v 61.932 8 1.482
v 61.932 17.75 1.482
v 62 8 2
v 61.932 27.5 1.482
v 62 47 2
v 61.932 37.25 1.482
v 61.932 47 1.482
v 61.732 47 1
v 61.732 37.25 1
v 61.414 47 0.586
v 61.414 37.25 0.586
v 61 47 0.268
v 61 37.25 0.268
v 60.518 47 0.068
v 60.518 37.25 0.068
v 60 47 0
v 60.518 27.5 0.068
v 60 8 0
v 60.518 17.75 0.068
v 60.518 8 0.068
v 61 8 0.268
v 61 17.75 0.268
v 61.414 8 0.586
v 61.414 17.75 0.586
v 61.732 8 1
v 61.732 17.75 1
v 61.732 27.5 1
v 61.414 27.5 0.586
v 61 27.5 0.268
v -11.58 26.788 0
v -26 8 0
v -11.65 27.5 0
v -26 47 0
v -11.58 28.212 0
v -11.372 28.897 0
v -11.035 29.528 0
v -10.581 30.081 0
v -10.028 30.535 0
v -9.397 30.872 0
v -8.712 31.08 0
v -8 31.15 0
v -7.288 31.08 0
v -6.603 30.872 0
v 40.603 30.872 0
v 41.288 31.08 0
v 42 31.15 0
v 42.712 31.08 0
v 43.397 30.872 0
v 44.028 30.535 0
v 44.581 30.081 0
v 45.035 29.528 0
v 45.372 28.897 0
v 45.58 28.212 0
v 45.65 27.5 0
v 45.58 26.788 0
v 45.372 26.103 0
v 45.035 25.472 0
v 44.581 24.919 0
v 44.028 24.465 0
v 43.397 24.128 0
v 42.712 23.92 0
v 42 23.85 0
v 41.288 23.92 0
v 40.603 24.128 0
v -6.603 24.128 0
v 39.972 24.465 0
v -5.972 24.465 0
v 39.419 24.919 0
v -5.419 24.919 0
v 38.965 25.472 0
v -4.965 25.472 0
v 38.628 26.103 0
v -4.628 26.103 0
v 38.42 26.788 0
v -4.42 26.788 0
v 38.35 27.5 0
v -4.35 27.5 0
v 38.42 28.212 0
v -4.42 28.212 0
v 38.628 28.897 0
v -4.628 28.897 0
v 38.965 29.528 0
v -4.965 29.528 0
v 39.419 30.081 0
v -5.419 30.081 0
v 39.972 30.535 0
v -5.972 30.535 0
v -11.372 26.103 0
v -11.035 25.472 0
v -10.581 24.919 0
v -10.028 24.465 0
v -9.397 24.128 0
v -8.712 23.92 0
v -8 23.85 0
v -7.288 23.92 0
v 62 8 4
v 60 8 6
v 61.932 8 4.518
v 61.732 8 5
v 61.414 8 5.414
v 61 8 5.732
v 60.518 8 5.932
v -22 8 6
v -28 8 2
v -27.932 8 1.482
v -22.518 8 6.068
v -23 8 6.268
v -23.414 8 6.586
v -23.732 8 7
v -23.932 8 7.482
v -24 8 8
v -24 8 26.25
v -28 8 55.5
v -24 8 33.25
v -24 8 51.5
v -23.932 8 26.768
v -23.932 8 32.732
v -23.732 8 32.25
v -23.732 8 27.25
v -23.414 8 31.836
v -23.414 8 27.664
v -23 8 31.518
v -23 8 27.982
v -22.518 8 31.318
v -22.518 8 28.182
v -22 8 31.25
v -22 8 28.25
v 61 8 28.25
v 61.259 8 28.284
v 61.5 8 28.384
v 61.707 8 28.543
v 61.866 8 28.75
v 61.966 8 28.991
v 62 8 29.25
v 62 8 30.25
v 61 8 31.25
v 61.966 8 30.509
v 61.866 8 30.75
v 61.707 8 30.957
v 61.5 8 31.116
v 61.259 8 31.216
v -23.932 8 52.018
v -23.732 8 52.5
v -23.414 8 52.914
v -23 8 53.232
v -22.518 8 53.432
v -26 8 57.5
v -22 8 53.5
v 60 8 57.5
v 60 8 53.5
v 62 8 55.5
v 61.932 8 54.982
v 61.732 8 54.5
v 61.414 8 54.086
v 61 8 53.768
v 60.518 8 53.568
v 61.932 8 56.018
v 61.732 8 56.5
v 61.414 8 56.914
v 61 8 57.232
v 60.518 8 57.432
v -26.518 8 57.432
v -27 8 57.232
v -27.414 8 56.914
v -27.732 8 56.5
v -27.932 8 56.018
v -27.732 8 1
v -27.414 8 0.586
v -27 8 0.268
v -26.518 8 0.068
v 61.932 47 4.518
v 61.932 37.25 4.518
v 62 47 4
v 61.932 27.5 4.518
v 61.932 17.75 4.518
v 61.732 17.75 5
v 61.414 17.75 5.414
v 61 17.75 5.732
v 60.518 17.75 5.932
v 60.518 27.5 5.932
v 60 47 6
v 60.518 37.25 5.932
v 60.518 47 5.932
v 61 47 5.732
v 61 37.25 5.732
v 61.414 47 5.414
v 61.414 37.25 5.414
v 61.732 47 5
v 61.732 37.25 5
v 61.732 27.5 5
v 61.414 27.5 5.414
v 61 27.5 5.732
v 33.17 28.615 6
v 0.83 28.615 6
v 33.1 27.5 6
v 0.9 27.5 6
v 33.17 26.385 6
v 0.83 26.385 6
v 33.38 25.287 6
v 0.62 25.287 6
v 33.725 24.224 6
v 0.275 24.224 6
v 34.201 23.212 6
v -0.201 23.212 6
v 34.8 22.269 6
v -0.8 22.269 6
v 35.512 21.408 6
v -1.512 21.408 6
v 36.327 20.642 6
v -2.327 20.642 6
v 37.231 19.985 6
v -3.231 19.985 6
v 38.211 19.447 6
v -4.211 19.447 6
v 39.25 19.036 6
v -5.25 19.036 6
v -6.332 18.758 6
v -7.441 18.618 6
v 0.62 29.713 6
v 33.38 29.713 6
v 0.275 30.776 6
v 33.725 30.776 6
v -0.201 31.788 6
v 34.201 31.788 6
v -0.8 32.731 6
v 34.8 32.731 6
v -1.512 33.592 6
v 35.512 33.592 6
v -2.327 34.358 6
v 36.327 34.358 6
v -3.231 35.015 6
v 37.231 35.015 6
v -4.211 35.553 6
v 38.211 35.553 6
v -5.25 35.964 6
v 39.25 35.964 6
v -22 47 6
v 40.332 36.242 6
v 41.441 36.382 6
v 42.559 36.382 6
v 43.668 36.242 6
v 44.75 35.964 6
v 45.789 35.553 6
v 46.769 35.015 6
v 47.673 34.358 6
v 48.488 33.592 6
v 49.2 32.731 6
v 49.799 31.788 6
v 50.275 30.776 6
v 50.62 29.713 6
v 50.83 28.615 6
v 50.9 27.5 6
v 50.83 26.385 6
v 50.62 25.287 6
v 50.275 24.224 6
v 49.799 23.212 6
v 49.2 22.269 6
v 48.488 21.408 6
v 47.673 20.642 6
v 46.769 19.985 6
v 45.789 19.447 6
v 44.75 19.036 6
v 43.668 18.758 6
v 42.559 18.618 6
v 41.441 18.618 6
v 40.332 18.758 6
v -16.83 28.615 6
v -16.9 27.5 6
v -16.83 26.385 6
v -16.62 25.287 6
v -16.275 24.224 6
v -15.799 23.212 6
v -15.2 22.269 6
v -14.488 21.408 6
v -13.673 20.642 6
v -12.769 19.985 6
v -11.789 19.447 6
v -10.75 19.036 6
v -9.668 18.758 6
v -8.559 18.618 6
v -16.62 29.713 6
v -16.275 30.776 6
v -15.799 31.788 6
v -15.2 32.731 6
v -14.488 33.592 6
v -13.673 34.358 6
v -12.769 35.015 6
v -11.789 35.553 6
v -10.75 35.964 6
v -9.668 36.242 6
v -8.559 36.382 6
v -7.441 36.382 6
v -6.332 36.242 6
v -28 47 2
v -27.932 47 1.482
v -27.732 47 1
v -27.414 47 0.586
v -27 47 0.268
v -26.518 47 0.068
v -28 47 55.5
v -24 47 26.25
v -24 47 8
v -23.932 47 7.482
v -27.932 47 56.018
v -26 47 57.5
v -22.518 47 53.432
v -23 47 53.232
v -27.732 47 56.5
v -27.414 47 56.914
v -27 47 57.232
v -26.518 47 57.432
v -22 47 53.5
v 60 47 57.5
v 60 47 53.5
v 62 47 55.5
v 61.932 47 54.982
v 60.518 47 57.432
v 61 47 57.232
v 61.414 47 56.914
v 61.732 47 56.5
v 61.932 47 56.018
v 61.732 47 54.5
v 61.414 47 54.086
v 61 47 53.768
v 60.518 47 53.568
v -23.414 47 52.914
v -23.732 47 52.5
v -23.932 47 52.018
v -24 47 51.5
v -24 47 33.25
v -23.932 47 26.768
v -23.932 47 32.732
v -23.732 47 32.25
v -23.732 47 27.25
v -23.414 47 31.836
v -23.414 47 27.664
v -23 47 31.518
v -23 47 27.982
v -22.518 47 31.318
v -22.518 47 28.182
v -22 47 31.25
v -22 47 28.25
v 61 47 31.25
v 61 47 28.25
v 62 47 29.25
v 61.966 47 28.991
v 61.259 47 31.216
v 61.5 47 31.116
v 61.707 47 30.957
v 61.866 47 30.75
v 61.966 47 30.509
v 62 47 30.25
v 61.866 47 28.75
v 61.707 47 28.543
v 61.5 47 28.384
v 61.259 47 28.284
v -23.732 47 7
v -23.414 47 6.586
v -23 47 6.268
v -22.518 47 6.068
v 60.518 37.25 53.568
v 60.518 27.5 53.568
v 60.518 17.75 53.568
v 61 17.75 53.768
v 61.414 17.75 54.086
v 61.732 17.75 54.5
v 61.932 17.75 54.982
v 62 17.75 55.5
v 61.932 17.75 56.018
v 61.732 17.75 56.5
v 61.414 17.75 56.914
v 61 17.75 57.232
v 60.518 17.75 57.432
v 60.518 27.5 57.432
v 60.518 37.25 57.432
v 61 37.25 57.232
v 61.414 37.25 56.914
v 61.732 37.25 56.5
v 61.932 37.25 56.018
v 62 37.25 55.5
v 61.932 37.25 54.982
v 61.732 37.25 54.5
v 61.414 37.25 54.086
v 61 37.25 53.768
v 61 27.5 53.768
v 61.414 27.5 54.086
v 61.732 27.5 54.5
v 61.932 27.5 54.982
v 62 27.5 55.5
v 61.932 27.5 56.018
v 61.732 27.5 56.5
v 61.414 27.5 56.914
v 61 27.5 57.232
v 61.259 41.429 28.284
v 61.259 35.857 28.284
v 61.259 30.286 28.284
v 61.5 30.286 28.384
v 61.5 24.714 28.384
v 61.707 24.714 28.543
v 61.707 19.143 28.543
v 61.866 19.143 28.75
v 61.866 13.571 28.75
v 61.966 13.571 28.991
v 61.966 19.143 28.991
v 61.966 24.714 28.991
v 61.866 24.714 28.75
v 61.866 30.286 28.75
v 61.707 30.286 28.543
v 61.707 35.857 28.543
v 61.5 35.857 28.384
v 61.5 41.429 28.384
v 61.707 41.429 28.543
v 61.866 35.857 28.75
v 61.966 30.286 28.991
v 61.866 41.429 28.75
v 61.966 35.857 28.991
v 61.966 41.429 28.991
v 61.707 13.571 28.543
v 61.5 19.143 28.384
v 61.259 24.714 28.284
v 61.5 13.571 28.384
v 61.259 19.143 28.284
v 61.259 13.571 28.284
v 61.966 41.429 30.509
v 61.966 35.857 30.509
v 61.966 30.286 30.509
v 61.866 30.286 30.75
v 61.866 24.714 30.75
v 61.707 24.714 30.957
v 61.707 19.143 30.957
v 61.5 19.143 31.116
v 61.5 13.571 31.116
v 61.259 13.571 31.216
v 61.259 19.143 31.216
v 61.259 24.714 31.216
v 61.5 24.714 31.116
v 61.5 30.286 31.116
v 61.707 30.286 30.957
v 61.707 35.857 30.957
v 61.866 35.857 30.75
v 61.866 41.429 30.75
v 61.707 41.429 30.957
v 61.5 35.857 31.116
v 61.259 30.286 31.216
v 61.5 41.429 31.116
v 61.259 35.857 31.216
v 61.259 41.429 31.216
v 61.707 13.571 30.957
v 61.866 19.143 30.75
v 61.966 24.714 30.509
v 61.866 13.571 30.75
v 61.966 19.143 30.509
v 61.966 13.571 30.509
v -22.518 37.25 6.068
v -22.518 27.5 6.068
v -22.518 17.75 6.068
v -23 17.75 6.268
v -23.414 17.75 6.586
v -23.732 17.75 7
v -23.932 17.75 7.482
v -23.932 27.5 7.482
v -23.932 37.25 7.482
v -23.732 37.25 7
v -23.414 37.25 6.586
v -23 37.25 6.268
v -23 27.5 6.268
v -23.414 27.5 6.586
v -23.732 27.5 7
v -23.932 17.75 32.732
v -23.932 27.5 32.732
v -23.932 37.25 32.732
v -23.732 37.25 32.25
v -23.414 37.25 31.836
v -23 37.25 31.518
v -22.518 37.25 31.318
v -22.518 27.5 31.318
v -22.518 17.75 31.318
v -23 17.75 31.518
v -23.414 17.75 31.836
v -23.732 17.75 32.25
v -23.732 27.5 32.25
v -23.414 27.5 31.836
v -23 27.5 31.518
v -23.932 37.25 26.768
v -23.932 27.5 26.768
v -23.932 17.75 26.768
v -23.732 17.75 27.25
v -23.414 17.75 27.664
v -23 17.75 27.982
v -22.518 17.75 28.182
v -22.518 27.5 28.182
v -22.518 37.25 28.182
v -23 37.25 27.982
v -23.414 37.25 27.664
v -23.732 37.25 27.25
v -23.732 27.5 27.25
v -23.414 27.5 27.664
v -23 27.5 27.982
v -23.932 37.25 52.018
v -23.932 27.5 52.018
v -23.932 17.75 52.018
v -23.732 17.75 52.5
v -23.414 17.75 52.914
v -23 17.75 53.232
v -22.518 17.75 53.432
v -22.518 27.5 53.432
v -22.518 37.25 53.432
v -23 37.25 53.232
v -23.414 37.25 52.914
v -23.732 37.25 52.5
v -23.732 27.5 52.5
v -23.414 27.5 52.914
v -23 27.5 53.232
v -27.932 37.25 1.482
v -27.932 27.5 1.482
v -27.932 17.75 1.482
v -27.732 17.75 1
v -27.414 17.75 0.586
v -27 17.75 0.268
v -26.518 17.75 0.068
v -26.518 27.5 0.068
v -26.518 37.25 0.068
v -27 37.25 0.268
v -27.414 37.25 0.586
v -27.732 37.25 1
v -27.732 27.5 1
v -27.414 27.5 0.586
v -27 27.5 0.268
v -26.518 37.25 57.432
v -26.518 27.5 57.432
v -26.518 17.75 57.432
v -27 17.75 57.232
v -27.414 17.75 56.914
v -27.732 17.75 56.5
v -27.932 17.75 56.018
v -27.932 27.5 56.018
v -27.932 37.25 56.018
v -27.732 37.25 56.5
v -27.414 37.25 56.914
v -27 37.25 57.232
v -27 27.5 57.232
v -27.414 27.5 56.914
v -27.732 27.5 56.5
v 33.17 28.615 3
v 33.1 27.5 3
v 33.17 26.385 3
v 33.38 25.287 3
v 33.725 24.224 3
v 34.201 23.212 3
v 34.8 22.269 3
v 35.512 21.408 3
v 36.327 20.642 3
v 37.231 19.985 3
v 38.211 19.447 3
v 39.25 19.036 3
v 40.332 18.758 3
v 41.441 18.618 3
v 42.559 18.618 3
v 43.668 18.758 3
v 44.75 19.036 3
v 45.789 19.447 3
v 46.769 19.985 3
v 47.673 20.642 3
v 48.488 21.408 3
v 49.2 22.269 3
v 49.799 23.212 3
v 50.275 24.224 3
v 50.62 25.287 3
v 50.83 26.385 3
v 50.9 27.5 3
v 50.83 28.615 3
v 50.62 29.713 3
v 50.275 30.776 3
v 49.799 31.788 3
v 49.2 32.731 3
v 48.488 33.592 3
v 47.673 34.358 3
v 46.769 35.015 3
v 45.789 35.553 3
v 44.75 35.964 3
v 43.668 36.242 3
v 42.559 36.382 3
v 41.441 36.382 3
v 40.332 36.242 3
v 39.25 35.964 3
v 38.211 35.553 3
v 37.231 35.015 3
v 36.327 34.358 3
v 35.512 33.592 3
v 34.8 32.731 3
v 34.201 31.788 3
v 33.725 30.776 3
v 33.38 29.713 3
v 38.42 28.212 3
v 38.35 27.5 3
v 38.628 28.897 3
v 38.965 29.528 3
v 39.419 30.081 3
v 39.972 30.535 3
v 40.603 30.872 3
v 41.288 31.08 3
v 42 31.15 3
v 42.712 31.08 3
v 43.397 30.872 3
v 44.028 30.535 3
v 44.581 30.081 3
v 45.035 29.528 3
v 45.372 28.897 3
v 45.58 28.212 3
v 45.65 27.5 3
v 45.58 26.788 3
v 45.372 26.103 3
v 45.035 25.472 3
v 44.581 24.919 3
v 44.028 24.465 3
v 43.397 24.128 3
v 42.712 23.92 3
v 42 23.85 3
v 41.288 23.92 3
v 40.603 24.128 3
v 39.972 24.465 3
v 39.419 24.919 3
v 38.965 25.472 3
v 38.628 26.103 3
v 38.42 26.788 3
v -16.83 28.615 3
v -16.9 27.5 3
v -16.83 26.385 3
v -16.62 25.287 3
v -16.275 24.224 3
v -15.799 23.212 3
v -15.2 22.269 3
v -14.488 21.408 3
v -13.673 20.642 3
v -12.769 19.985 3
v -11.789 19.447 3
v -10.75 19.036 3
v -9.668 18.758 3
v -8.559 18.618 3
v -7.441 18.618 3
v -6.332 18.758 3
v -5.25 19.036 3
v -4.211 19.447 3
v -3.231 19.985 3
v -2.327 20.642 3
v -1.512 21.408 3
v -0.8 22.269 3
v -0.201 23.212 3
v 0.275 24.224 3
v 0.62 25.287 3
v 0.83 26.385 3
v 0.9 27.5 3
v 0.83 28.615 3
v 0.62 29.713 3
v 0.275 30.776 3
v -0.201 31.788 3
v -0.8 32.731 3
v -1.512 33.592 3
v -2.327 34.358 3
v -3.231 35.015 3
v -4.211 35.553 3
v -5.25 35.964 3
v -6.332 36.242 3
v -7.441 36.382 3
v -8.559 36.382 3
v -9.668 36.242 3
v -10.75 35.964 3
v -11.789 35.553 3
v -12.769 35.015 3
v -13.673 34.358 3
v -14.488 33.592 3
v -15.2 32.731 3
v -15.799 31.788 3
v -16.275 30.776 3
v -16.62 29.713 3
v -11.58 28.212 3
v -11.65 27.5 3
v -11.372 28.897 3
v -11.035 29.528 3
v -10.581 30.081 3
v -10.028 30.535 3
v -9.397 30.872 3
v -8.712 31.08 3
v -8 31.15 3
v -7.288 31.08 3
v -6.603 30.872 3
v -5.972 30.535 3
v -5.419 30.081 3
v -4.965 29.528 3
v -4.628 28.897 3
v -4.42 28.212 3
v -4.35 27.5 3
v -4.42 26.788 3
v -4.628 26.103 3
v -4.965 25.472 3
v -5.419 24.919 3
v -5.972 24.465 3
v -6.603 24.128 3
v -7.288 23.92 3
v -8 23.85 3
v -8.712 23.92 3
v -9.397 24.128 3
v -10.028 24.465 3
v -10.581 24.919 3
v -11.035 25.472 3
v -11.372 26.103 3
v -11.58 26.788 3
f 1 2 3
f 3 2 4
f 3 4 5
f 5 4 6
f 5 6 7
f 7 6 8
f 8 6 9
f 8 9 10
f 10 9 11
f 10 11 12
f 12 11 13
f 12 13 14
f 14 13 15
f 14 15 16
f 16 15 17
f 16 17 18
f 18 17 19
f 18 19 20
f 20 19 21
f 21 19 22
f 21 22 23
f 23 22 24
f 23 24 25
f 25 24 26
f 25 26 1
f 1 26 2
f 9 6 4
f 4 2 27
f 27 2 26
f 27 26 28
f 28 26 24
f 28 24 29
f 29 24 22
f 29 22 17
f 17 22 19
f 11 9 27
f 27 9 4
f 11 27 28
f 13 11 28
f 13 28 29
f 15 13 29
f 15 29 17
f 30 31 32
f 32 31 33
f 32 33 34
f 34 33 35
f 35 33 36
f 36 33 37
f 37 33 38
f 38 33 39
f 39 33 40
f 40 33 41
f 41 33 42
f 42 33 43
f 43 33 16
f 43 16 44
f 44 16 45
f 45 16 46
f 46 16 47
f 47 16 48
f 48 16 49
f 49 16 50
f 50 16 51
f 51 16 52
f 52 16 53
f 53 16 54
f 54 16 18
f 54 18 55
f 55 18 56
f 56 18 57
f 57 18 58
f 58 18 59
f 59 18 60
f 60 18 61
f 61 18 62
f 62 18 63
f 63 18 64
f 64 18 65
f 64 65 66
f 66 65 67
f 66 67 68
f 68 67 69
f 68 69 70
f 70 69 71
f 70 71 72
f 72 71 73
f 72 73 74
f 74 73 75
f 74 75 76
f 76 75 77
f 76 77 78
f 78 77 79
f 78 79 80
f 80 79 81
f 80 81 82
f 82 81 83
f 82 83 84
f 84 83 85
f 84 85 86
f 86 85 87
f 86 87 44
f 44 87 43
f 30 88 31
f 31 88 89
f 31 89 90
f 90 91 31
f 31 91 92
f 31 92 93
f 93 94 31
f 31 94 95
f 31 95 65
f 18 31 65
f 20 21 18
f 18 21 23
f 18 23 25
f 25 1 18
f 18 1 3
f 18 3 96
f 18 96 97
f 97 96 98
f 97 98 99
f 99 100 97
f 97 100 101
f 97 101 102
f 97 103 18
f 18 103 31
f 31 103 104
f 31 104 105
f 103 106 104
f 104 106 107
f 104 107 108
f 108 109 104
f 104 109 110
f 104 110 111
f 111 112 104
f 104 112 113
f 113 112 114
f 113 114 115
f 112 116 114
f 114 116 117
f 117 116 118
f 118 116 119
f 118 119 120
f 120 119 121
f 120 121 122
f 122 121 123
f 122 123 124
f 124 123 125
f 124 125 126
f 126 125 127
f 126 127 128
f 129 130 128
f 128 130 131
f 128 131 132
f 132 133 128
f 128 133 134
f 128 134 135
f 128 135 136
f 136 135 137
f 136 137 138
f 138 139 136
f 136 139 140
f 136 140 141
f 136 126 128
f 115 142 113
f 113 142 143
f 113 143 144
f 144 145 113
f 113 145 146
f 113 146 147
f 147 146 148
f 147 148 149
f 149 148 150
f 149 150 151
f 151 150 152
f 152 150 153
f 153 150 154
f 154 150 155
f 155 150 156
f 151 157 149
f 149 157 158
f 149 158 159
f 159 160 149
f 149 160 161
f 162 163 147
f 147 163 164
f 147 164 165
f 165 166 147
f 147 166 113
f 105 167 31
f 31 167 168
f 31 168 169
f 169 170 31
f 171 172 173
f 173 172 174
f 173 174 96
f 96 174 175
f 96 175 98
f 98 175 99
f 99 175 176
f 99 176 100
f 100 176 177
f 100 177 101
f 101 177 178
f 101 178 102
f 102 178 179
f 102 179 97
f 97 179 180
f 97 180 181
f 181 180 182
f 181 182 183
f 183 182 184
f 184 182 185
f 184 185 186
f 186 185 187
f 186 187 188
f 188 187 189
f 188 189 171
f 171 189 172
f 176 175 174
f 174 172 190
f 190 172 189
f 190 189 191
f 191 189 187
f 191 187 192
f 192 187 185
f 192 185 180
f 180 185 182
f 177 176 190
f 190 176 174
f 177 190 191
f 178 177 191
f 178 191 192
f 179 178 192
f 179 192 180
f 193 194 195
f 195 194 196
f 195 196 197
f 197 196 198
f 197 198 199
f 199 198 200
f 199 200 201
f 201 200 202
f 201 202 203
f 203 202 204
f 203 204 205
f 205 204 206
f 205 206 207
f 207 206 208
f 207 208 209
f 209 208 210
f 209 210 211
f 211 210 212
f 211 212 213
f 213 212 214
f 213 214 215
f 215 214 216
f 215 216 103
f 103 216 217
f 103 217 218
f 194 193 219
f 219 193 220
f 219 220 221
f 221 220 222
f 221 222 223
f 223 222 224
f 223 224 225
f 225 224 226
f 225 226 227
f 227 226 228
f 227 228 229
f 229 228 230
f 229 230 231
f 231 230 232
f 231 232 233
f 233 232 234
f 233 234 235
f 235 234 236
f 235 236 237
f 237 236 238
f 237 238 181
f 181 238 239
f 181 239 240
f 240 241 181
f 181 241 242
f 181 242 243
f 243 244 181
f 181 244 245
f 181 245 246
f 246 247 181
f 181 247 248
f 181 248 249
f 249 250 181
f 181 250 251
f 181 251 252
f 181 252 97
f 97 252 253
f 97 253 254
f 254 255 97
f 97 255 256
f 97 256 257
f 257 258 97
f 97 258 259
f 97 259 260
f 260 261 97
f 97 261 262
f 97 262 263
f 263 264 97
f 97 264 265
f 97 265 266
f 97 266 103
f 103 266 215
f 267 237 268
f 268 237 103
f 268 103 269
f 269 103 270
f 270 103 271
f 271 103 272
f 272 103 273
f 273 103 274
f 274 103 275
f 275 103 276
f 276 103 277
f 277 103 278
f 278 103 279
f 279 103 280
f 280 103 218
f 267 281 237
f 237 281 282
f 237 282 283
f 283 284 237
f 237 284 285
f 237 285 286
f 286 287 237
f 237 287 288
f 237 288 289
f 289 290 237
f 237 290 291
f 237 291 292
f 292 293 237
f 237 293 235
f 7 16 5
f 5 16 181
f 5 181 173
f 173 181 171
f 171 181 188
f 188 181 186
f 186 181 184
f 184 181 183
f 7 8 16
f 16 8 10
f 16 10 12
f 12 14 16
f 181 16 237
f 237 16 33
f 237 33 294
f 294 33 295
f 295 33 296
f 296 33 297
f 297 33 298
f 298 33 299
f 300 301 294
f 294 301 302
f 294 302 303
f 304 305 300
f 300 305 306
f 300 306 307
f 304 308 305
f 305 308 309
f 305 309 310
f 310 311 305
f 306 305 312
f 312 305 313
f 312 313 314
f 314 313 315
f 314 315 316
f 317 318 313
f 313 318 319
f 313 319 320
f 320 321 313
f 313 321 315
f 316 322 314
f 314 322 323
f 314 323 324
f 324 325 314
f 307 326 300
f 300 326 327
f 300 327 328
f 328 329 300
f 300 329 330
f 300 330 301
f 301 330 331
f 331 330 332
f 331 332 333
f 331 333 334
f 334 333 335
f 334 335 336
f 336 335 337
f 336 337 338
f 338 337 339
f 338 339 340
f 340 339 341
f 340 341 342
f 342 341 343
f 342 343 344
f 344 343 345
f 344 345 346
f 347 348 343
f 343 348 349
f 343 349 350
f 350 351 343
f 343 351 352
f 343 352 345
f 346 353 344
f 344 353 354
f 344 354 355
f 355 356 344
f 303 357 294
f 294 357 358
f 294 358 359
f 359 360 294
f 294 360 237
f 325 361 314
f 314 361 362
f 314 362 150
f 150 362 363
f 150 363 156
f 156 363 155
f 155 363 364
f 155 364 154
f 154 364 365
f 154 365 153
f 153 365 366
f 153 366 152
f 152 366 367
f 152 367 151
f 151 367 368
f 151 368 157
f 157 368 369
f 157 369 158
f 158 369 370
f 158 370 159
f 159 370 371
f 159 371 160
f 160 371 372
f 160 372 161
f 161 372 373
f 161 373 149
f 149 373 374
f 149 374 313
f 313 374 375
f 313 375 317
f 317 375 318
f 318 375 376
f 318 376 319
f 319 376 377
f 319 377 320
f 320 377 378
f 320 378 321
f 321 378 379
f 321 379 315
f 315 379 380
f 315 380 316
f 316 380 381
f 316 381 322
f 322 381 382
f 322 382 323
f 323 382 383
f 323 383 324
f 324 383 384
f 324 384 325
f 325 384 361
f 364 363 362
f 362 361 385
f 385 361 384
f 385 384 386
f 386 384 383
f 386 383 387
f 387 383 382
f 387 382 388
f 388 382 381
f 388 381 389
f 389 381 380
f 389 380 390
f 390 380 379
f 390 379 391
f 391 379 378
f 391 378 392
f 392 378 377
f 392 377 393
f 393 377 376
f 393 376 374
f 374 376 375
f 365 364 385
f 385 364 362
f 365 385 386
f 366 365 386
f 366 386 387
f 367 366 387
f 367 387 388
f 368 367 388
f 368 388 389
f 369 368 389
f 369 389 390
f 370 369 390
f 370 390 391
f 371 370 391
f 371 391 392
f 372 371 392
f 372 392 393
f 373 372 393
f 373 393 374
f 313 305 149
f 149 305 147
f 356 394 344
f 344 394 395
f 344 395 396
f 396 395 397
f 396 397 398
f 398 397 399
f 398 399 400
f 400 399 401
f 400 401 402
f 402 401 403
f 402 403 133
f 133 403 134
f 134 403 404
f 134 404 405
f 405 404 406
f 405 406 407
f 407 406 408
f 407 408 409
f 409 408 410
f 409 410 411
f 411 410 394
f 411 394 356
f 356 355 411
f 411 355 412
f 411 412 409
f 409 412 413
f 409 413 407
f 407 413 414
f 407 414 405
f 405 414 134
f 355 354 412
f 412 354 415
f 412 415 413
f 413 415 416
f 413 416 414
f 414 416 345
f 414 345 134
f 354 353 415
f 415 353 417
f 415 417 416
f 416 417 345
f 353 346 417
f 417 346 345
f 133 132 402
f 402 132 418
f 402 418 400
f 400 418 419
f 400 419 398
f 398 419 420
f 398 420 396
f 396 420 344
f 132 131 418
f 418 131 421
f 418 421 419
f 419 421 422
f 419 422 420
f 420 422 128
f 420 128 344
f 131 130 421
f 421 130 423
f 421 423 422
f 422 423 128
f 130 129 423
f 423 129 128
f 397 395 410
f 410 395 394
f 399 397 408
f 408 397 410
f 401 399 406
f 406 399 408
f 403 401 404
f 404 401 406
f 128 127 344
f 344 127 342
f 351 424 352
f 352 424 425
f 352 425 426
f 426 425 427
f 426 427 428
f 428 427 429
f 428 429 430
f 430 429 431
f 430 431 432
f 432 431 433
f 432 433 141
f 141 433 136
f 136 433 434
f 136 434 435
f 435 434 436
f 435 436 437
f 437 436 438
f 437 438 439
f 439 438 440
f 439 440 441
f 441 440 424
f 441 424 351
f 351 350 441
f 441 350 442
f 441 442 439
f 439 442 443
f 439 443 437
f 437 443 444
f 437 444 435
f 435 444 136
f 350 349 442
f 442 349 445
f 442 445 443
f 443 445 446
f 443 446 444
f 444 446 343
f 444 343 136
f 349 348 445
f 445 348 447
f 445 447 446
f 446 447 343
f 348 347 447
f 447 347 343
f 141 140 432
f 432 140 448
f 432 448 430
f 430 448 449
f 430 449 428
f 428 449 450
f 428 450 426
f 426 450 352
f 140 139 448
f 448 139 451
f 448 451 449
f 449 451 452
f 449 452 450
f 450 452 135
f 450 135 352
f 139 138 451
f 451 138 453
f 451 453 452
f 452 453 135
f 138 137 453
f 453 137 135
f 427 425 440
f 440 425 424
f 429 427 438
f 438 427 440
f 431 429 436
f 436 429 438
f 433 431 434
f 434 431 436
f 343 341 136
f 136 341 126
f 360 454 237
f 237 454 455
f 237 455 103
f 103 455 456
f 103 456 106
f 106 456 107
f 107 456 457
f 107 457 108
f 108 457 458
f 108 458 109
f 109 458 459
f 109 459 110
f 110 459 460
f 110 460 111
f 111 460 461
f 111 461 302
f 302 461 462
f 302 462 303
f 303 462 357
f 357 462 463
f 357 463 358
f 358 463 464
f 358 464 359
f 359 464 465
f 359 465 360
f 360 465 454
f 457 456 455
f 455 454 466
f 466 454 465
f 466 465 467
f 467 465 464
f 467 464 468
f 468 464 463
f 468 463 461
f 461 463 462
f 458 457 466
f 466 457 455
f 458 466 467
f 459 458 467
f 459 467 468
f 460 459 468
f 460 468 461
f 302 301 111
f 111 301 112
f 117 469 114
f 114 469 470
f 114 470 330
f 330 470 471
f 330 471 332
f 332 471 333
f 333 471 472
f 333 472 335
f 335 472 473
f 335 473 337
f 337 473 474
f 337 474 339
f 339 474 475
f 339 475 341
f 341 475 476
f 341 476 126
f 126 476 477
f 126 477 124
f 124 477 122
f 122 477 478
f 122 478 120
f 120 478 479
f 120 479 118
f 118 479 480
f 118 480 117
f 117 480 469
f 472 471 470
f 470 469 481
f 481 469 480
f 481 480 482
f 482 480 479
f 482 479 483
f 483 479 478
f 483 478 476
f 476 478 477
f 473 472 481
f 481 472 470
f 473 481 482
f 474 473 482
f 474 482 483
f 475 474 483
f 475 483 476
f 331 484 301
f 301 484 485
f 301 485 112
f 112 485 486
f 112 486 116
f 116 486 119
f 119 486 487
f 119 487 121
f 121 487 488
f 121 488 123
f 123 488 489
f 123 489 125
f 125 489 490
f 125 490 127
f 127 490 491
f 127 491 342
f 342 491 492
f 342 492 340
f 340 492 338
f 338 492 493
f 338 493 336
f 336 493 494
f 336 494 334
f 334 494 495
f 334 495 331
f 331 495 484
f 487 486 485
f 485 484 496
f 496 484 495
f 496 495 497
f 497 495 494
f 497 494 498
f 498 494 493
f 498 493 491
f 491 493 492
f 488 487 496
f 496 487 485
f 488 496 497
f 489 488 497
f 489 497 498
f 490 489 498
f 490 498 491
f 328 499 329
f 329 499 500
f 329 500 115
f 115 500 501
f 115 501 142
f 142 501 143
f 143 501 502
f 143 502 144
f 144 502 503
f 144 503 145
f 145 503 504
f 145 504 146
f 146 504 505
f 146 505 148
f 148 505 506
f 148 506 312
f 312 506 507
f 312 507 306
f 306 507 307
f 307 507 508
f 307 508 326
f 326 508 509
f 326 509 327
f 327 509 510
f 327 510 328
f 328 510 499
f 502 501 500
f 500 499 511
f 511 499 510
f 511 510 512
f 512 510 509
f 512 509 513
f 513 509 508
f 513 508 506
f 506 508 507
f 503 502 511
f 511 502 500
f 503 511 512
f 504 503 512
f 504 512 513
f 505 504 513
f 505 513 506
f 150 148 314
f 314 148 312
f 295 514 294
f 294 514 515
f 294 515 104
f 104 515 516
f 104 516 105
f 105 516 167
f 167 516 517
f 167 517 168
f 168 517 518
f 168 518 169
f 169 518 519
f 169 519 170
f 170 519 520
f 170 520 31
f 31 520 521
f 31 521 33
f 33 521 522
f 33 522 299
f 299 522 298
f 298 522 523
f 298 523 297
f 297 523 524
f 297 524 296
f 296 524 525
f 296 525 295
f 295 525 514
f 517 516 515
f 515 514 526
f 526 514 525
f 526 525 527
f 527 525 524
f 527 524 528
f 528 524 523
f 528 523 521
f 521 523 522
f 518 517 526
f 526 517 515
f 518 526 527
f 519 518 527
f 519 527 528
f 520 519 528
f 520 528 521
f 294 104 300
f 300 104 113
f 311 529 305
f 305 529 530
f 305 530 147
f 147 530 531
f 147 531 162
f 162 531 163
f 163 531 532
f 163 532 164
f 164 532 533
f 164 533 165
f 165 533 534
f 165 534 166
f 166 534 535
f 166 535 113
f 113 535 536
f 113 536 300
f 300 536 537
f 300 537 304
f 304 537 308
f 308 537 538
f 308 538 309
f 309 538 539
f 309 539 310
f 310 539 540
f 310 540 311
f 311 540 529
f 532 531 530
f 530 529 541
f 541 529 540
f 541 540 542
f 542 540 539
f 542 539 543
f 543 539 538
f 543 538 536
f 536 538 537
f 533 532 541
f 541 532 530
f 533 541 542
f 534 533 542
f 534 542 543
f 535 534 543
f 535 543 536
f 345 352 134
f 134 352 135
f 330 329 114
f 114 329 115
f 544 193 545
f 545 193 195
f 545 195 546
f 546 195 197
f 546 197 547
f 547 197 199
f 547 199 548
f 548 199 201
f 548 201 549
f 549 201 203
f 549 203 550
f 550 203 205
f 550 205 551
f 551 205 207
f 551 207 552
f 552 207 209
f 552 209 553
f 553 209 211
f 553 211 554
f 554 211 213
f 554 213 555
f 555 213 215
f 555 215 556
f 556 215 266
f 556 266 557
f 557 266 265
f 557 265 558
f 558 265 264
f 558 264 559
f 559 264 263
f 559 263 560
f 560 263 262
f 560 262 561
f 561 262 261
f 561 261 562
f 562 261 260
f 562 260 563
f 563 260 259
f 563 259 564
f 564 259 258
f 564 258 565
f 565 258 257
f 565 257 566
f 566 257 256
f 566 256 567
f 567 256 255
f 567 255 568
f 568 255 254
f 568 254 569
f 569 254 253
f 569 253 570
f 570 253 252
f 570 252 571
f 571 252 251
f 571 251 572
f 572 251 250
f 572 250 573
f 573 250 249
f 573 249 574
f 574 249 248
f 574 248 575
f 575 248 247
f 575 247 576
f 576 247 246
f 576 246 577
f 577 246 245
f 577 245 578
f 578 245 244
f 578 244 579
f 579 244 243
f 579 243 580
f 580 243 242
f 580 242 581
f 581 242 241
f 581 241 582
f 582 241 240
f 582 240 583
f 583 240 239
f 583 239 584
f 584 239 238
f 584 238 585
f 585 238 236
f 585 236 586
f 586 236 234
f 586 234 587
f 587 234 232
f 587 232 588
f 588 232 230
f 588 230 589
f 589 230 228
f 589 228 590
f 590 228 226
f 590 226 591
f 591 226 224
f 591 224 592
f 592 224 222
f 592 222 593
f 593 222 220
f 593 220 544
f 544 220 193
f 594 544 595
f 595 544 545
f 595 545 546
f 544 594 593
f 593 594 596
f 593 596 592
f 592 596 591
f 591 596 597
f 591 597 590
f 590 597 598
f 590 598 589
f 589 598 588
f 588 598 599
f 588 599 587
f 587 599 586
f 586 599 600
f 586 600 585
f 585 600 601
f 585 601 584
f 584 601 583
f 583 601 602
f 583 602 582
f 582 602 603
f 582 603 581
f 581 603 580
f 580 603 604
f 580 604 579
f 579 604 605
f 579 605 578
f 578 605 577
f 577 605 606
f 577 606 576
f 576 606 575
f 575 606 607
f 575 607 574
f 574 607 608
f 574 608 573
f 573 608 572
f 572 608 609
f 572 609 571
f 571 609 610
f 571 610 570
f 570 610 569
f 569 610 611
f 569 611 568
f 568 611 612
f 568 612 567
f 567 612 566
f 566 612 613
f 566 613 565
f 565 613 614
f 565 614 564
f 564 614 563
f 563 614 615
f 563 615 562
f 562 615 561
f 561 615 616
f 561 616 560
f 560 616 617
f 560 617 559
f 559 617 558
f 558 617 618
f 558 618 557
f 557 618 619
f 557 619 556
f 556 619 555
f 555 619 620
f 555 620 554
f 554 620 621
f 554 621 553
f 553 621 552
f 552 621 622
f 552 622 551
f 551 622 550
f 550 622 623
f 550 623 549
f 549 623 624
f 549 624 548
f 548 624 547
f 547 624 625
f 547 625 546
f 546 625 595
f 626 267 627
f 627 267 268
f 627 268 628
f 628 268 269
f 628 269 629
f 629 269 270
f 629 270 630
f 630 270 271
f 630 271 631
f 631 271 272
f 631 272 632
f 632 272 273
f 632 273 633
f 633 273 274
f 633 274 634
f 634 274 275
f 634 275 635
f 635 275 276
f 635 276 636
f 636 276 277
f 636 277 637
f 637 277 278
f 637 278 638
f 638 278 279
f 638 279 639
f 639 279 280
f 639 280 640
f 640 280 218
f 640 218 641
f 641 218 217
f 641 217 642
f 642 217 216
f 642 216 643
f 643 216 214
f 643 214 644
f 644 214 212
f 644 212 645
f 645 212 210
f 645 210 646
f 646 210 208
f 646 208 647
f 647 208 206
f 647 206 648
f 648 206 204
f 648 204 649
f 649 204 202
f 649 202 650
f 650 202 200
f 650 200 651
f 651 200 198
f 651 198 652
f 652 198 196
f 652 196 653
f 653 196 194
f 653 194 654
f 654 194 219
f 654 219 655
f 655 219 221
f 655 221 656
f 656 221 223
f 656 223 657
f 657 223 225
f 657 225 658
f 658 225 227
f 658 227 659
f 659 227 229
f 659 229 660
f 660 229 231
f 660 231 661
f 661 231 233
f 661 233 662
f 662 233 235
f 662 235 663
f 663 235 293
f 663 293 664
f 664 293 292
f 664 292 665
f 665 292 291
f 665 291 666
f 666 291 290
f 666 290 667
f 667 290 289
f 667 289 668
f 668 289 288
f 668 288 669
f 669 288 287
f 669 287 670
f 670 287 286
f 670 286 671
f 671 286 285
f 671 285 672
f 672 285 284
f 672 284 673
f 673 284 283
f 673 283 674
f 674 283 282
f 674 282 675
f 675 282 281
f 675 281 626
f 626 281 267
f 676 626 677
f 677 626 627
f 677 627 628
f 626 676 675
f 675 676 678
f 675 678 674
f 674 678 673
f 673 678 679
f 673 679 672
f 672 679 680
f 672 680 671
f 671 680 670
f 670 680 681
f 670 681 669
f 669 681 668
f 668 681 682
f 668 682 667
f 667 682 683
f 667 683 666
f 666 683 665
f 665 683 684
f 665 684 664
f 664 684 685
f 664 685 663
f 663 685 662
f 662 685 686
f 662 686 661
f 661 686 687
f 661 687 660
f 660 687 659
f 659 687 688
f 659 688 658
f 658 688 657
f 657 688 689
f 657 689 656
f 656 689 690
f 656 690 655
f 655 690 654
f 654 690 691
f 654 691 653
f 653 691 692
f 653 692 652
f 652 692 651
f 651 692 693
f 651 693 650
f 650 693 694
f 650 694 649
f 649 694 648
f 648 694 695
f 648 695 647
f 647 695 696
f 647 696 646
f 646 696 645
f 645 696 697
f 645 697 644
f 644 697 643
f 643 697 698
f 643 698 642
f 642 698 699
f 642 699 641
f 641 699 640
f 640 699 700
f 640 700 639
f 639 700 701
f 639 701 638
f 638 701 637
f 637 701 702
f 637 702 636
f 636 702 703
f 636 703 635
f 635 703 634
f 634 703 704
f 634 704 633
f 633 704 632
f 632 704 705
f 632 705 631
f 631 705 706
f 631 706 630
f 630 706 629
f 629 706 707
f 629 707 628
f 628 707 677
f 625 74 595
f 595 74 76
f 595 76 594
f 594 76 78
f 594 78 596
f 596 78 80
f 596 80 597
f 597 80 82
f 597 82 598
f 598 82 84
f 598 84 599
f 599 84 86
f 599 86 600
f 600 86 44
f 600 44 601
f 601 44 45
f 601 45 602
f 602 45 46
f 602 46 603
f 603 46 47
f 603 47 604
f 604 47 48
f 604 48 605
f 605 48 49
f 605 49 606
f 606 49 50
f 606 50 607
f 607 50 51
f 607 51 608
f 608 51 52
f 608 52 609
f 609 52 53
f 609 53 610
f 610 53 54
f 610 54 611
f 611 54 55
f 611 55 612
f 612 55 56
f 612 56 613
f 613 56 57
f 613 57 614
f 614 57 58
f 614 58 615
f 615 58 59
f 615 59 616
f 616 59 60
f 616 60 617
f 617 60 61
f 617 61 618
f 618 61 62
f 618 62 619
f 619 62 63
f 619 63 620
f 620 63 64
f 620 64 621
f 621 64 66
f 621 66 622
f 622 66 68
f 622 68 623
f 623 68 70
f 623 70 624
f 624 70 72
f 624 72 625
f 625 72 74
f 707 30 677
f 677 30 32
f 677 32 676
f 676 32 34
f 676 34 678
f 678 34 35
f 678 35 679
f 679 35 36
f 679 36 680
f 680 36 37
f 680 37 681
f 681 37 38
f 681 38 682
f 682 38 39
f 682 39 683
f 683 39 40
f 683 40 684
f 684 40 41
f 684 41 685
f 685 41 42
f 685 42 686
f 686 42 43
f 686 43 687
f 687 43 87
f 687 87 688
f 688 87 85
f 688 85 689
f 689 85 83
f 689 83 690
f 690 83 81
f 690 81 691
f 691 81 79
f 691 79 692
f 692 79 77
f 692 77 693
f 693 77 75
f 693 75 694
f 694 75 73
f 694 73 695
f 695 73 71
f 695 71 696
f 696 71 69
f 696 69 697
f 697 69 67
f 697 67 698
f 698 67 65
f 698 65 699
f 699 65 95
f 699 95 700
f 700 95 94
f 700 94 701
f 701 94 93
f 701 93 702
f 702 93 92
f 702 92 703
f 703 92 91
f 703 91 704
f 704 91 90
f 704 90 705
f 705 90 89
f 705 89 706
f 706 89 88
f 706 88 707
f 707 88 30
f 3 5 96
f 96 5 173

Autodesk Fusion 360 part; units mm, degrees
sketch "Sketch1" plane through (0, 0, 0) normal (0, 0, 1) x (1, 0, 0)
  line L0 (-28, 37) -> (62, 37)
  line L1 (62, 37) -> (62, 18)
  line L2 (62, 18) -> (-28, 18)
  line L3 (-28, 18) -> (-28, 37)
  dimension "d1" = 90
  dimension "d2" = 19
extrude "Extrude1" add sketch "Sketch1" along normal blind 6
sketch "Sketch2" plane through (0, 0, 6) normal (0, 0, 1) x (-1, 0, 0)
  line L0 (28, -37) -> (28, -18)
  line L1 (28, -18) -> (-62, -18)
  line L2 (-62, -18) -> (-62, -37)
  line L3 (-62, -37) -> (28, -37)
ref_plane "WorkPlane1" through (17, 27.5, 6) normal (0, 0, 1) x (-1, 0, 0)
sketch "Sketch3" plane through (0, 0, 6) normal (0, 0, 1) x (1, 0, 0)
  line L0 (17, 37) -> (17, 18)
  circle A0 centre (-8, 27.5) radius 8.9
  circle A1 centre (42, 27.5) radius 8.9
  circle A2 centre (-8, 27.5) radius 3.65
  circle A3 centre (42, 27.5) radius 3.65
  dimension "d13" = 17.8
  dimension "d14" = 17.8
  dimension "d15" = 7.3
  dimension "d16" = 7.3
extrude "Extrude2" cut sketch "Sketch3" against normal blind 7 contours A2 | A3
extrude "Extrude3" cut sketch "Sketch3" against normal blind 3
sketch "Sketch7" plane through (0, 0, 0) normal (0, 0, -1) x (1, 0, 0)
  circle A0 centre (42, -27.5) radius 3.65
  circle A1 centre (-8, -27.5) radius 3.65
  line L0 (62, -18) -> (-28, -18)
  line L1 (-28, -18) -> (-28, -37)
  line L2 (-28, -37) -> (62, -37)
  line L3 (62, -37) -> (62, -18)
  line L4 (-28, -18) -> (62, -18)
  line L5 (62, -18) -> (62, -8)
  line L6 (62, -8) -> (-28, -8)
  line L7 (-28, -8) -> (-28, -18)
  dimension "d37" = 10
  dimension "d38" = 90
extrude "Extrude7" add sketch "Sketch7" against normal blind 6 contours L0 L4 L5 L6 L7
sketch "Sketch8" plane through (-28, 0, 0) normal (-1, 0, 0) x (0, -1, 0)
  line L0 (-37, 0) -> (-8, 0)
  line L1 (-8, 0) -> (-8, 6)
  line L2 (-8, 6) -> (-37, 6)
  line L3 (-37, 6) -> (-37, 0)
ref_plane "WorkPlane3" through (17, 22.5, 0) normal (0, 0, -1) x (-1, 0, 0)
sketch "Sketch9" plane through (0, 0, 0) normal (0, 0, -1) x (-1, 0, 0)
  line L0 (-62, 37) -> (28, 37)
  line L1 (28, 37) -> (28, 47)
  line L2 (28, 47) -> (-62, 47)
  line L3 (-62, 47) -> (-62, 37)
  dimension "d42" = 90
  dimension "d43" = 10
extrude "Extrude8" add sketch "Sketch9" against normal blind 6
ref_plane "WorkPlane4" through (17, 8, 3) normal (0, -1, 0) x (1, 0, 0)
sketch "Sketch10" plane through (0, 8, 0) normal (0, -1, 0) x (-1, 0, 0)
  line L0 (28, -6) -> (24, -6)
  line L1 (24, -6) -> (24, -57.5)
  line L2 (24, -57.5) -> (28, -57.5)
  line L3 (28, -57.5) -> (28, -6)
  dimension "d47" = 4
  dimension "d48" = 51.5
extrude "Extrude9" add sketch "Sketch10" against normal blind 39
sketch "Sketch11" plane through (0, 8, 0) normal (0, -1, 0) x (1, 0, 0)
  line L0 (-28, 0) -> (62, 0)
  line L1 (62, 0) -> (62, 6)
  line L2 (62, 6) -> (-24, 6)
  line L3 (-24, 6) -> (-24, 57.5)
  line L4 (-24, 57.5) -> (-28, 57.5)
  line L5 (-28, 57.5) -> (-28, 0)
  line L6 (-28, 57.5) -> (62, 57.5)
  line L7 (62, 57.5) -> (62, 53.5)
  line L8 (62, 53.5) -> (-28, 53.5)
  line L9 (-28, 53.5) -> (-28, 57.5)
  dimension "d51" = 90
  dimension "d52" = 4
extrude "Extrude10" add sketch "Sketch11" against normal blind 39 contours L3 L6 L7 L8
sketch "Sketch12" plane through (0, 8, 0) normal (0, -1, 0) x (1, 0, 0)
  line L0 (-28, 0) -> (62, 0)
  line L1 (62, 0) -> (62, 6)
  line L2 (62, 6) -> (-24, 6)
  line L3 (-24, 6) -> (-24, 53.5)
  line L4 (-24, 53.5) -> (62, 53.5)
  line L5 (62, 53.5) -> (62, 57.5)
  line L6 (62, 57.5) -> (-28, 57.5)
  line L7 (-28, 57.5) -> (-28, 0)
  circle A0 centre (-24, 6) radius 22.25
  line L8 (-24, 28.25) -> (62, 28.25)
  line L9 (62, 28.25) -> (62, 31.25)
  line L10 (62, 31.25) -> (-24, 31.25)
  line L11 (-24, 31.25) -> (-24, 28.25)
  dimension "d55" = 44.5
  dimension "d56" = 86
  dimension "d57" = 3
extrude "Extrude11" add sketch "Sketch12" against normal blind 39 contours L3 L8 L9 L10 L11
fillet "Fillet3" radius 2 1 edges at (-28, 27.5, 57.5)
fillet "Fillet4" radius 2 1 edges at (-28, 27.5, 0)
fillet "Fillet5" radius 2 2 edges at (-24, 27.5, 53.5) (-24, 27.5, 28.25)
fillet "Fillet6" radius 2 2 edges at (-24, 27.5, 31.25) (-24, 27.5, 6)
fillet "Fillet7" radius 1 2 edges at (62, 27.5, 31.25) (62, 27.5, 28.25)
fillet "Fillet8" radius 2 4 edges at (62, 27.5, 57.5) (62, 27.5, 53.5) (62, 27.5, 6) (62, 27.5, 0)
